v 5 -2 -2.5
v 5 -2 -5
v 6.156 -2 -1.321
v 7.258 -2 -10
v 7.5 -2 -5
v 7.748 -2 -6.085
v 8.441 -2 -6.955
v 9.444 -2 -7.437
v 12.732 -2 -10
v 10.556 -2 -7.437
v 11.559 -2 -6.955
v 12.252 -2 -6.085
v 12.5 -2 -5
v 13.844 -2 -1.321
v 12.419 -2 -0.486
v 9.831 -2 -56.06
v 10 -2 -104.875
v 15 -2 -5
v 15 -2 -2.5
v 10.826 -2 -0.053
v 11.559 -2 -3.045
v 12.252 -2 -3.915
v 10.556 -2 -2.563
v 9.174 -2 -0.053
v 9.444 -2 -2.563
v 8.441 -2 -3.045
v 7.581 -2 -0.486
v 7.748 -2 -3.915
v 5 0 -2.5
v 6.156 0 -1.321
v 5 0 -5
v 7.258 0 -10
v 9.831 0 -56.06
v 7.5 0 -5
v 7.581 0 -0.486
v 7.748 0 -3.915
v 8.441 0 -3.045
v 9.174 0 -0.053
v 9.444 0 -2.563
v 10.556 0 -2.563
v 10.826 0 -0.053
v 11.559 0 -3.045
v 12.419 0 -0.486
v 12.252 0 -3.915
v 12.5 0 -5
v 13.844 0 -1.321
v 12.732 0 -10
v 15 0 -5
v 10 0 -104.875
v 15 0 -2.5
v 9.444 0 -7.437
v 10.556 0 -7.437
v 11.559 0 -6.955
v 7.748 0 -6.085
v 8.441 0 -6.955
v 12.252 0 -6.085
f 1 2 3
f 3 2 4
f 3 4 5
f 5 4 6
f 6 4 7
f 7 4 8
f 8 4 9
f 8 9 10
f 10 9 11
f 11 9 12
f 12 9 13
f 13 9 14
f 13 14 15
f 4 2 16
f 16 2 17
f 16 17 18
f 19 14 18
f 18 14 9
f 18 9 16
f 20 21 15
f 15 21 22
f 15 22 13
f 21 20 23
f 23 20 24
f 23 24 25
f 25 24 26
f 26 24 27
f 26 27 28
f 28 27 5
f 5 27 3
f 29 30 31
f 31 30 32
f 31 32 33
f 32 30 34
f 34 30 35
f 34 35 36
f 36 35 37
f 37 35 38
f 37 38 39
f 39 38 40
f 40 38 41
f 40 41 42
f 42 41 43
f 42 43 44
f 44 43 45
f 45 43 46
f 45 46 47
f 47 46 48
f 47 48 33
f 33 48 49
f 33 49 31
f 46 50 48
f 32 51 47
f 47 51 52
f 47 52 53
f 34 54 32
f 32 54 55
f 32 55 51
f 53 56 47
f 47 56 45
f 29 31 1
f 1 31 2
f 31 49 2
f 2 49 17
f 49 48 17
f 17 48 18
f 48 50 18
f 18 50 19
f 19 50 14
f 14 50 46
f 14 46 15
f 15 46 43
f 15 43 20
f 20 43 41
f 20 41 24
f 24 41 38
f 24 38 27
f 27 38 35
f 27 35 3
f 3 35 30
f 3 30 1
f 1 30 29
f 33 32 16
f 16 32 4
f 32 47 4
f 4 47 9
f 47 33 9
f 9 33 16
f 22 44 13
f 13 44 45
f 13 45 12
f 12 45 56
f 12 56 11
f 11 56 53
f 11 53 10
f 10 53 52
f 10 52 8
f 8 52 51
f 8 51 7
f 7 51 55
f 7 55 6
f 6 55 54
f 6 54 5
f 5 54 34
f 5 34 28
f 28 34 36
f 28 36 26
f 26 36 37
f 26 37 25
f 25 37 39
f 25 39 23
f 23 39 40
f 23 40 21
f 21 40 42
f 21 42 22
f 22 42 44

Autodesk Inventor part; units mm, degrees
ref_plane "YZ Plane" through (0, 0, 0) normal (1, 0, 0) x (0, 1, 0)
ref_plane "XZ Plane" through (0, 0, 0) normal (0, 1, 0) x (-1, 0, 0)
ref_plane "XY Plane" through (0, 0, 0) normal (0, 0, 1) x (1, 0, 0)
sketch "Szkic3" plane through (0, 0, 0) normal (0, 1, 0) x (-1, 0, 0)
  line L0 (0, 0) -> (10, 0)
  line L1 (10, 0) -> (10, -50)
  line L2 (10, -50) -> (0, -50)
  line L3 (0, -50) -> (0, 0)
  circle A0 centre (5, -5) radius 2.5
  arc A1 (10, -2.5) -> (0, -2.5) centre (5, -6.25) ccw
  line L4 (8, -50) -> (2, -50)
  line L5 (2, -50) -> (2, -10)
  line L6 (2, -10) -> (8, -10)
  line L7 (8, -10) -> (8, -50)
  line L8 (2, -10) -> (8, -16)
  line L9 (2, -10) -> (10.4853, -10) construction
  line L10 (8, -16) -> (8, -18)
  line L11 (8, -18) -> (2, -12)
  line L12 (2, -10) -> (2, -12)
  line L13 (8, -18) -> (8, -22)
  line L14 (2, -16) -> (8, -22)
  line L15 (8, -24) -> (2, -18)
  line L16 (8, -16) -> (8, -14)
  line L17 (8, -24) -> (8, -26)
  line L18 (2, -20) -> (8, -26)
  line L19 (8, -28) -> (2, -22)
  line L20 (8, -28) -> (8, -32)
  line L21 (2, -26) -> (8, -32)
  line L22 (8, -34) -> (2, -28)
  line L23 (8, -34) -> (8, -36)
  line L24 (2, -26) -> (8, -32)
  line L25 (8, -34) -> (2, -28)
  line L26 (8, -34) -> (8, -38)
  line L27 (2, -32) -> (8, -38)
  line L28 (8, -40) -> (2, -34)
  line L29 (8, -40) -> (8, -42)
  line L30 (2, -32) -> (8, -38)
  line L31 (8, -40) -> (2, -34)
  line L32 (8, -40) -> (8, -44)
  line L33 (2, -38) -> (8, -44)
  line L34 (8, -46) -> (2, -40)
  line L35 (8, -46) -> (8, -48)
  line L36 (2, -38) -> (8, -44)
  line L37 (8, -46) -> (2, -40)
  line L38 (8, -46) -> (8, -50)
  line L39 (8, -46) -> (8, -48)
  line L40 (8, -48) -> (2, -42)
  line L41 (2, -42) -> (2, -44)
  line L42 (2, -44) -> (8, -50)
  line L43 (7, -49) -> (2, -49)
  circle A2 centre (5, -5) radius 3.25
  dimension "d9" = 10
  dimension "d10" = 50
  dimension "d11" = 5
  dimension "d12" = 6
  dimension "d13" = 40
  dimension "d14" = 45
  dimension "d15" = 2
  dimension "d16" = 4
  dimension "d17" = 2
  dimension "d18" = 2
  dimension "d19" = 2
  dimension "d20" = 2
  dimension "d21" = 4
  dimension "d22" = 2
  dimension "d23" = 2
  dimension "d24" = 2
  dimension "d25" = 4
  dimension "d26" = 2
  dimension "d27" = 2
  dimension "d28" = 2
  dimension "d29" = 4
  dimension "d30" = 2
  dimension "d32" = 2
  dimension "d36" = 2
  dimension "d37" = 2
  dimension "d42" = 6.5
extrude "Wyciągnięcie proste2" add sketch "Szkic3" against normal blind 2 contours A1 L1 L2 L7 L6 L5 L3 | L5 L43 L42 L2 | L42 L5 L40 L7 | L34 L5 L33 L7 | L28 L5 L27 L7 | L5 L21 L7 L22 | L5 L18 L7 L19 | L5 L14 L7 L15 | L5 L8 L7 L11 | A2
ref_plane "Płaszczyzna konstrukcyjna1" through (0, 0, -50) normal (0, 0, -1) x (-1, 0, 0)
mirror "Odbij1" about plane through (0, 0, -50) normal (0, 0, -1) of "Wyciągnięcie proste2"
sketch "Szkic4" plane through (0, 0, 0) normal (0, 1, 0) x (1, 0, 0)
  line L0 (-7.5, 91.0504) -> (-2.5, 91.0504)
  line L1 (-2.5, 91.0504) -> (-2.5, 98.6571)
  line L2 (-2.5, 98.6571) -> (-7.5, 98.6571)
  line L3 (-7.5, 98.6571) -> (-7.5, 91.0504)
  point P0 (0, 0)
extrude "Wyciągnięcie proste3" cut sketch "Szkic4" against normal blind 2
sketch "Szkic5" plane through (0, 0, 0) normal (0, 1, 0) x (1, 0, 0)
  line L0 (-10, 2.5) -> (-10, 97.5) projected
  line L1 (-10, 97.5) -> (-10, 67.5)
  line L2 (-10, 67.5) -> (-13, 67.5)
  line L3 (-13, 67.5) -> (-13, 97.5)
  line L4 (-13, 97.5) -> (-10, 97.5)
  arc A0 (0, 97.5) -> (-10, 97.5) centre (-5, 93.75) ccw projected
  line L5 (-5, 100) -> (-5, 49.8742)
  line L6 (-5, 100) -> (45.1258, 100) construction
  line L7 (-13, 67.5) -> (-10, 62.3038)
  line L8 (-13, 67.5) -> (-7, 67.5) construction
  line L9 (-10, 62.3038) -> (-10, 67.5)
  line L10 (0, 2.5) -> (0, 97.5)
  line L11 (0, 67.5) -> (3, 67.5)
  line L12 (3, 67.5) -> (3, 97.5)
  line L13 (3, 97.5) -> (0, 97.5)
  line L14 (3, 67.5) -> (0, 62.3038)
  arc A1 (3, 97.5) -> (-13, 97.5) centre (-5, 94.4495) ccw
  point P0 (0, 0)
  dimension "d43" = 30
  dimension "d44" = 3
  dimension "d45" = 90
  dimension "d46" = 60
extrude "Wyciągnięcie proste4" add sketch "Szkic5" against normal blind 2
sketch "Szkic6" plane through (0, 0, 0) normal (0, 1, 0) x (1, 0, 0)
  line L0 (-10, 62.3038) -> (-10, 2.5) projected
  line L1 (-10, 62.3038) -> (-10, 97.356)
  line L2 (-10, 97.356) -> (0, 97.356)
  line L3 (0, 97.356) -> (0, 62.3038)
  line L4 (0, 62.3038) -> (-10, 62.3038)
  point P0 (0, 0)
extrude "Wyciągnięcie proste5" cut sketch "Szkic6" against normal blind 2
sketch "Szkic7" plane through (0, 0, 0) normal (0, 1, 0) x (1, 0, 0)
  line L0 (-10, 62.3038) -> (-8, 62.3038) projected
  line L1 (-10, 62.3038) -> (-10, 67.4287)
  line L2 (-10, 62.3038) -> (-10, 97.356) projected
  line L3 (-10, 67.4287) -> (0, 67.4287)
  line L4 (0, 62.3038) -> (0, 97.356) projected
  line L5 (0, 62.3038) -> (0, 67.4287)
  line L6 (0, 62.3038) -> (-2, 62.3038) projected
  line L7 (-10, 2.5) -> (-10, 62.3038) projected
  line L8 (0, 62.3038) -> (-10, 62.3038)
  line L9 (-10, 62.3038) -> (-10, 61.2351)
  line L10 (-10, 61.2351) -> (0, 61.2351)
  line L11 (0, 61.2351) -> (0, 62.3038)
  line L12 (-10, 61.2351) -> (0, 61.2351)
  line L13 (0, 2.5) -> (0, 62.3038) projected
  line L14 (0, 61.2351) -> (0, 67.4287)
  line L15 (0, 67.4287) -> (-10, 67.4287)
  line L16 (-10, 61.2351) -> (-10, 67.4287)
  point P0 (0, 0)
extrude "Wyciągnięcie proste6" add sketch "Szkic7" against normal blind 2
sketch "Szkic8" plane through (0, 0, 0) normal (0, 1, 0) x (1, 0, 0)
  line L0 (-7.5, 97.356) -> (-10, 97.356) projected
  line L1 (-10, 97.356) -> (-11, 97.356)
  line L2 (-11, 97.356) -> (-11, 67.4287)
  line L3 (-11, 67.4287) -> (-10, 67.4287)
  line L4 (-10, 67.4287) -> (-10, 97.356)
  line L5 (0, 97.356) -> (1, 97.356)
  line L6 (1, 97.356) -> (1, 67.4287)
  line L7 (1, 67.4287) -> (0, 67.4287)
  line L8 (0, 67.4287) -> (0, 97.356)
  line L9 (-11, 67.4287) -> (1, 67.4287)
  line L10 (1, 67.4287) -> (1, 72.7222)
  line L11 (1, 72.7222) -> (-11, 72.7222)
  line L12 (-11, 72.7222) -> (-11, 67.4287)
  point P0 (0, 0)
  point P1 (0, 72.7222)
  point P2 (-10, 72.7222)
  dimension "d53" = 1
  dimension "d54" = 1
extrude "Wyciągnięcie proste7" cut sketch "Szkic8" against normal blind 2 contours L4 L11 L2 L1 | L8 L5 L6 L11
sketch "Szkic9" plane through (0, 0, 0) normal (0, 1, 0) x (1, 0, 0)
  line L0 (-10, 72.7222) -> (0, 72.7222)
  line L1 (0, 72.7222) -> (0, 67.3617)
  line L2 (0, 67.3617) -> (-10, 67.3617)
  line L3 (-10, 67.3617) -> (-10, 72.7222)
  point P0 (0, 0)
extrude "Wyciągnięcie proste8" add sketch "Szkic9" against normal blind 2
sketch "Szkic10" plane through (0, 0, 0) normal (0, 1, 0) x (1, 0, 0)
  point P0 (0, 0)
split "Podział1" plane through (0, 0, -50) removes the side toward (0, 0, -1)
sketch "Szkic11" plane through (0, 0, 0) normal (0, 1, 0) x (1, 0, 0)
  line L0 (-10, 2.5) -> (-10, 50) projected
  line L1 (-10, 50) -> (0, 50)
  line L2 (0, 50) -> (0, 100)
  line L3 (0, 100) -> (-10, 100)
  line L4 (-10, 100) -> (-10, 50)
  line L5 (-10, 100) -> (0, 100)
  line L6 (0, 100) -> (0, 124.634)
  line L7 (0, 124.634) -> (-10, 124.634)
  line L8 (-10, 124.634) -> (-10, 100)
  line L9 (-10, 124.634) -> (-11, 124.634)
  line L10 (-11, 124.634) -> (-11, 100)
  line L11 (-11, 100) -> (-10, 100)
  line L12 (-10, 100) -> (-10, 124.634)
  line L13 (0, 124.634) -> (1, 124.634)
  line L14 (1, 124.634) -> (1, 100)
  line L15 (1, 100) -> (0, 100)
  line L16 (0, 100) -> (0, 124.634)
  line L17 (-11, 100) -> (-9, 100) construction
  line L18 (1, 100) -> (3, 100) construction
  line L19 (-11, 124.634) -> (1, 124.634)
  line L20 (1, 124.634) -> (1, 126.634)
  line L21 (1, 126.634) -> (-11, 126.634)
  line L22 (-11, 126.634) -> (-11, 124.634)
  line L23 (-11, 100) -> (-12, 100)
  line L24 (-12, 100) -> (-12, 126.634)
  line L25 (-12, 126.634) -> (-11, 126.634)
  line L26 (-11, 126.634) -> (-11, 100)
  line L27 (1, 126.634) -> (2, 126.634)
  line L28 (2, 126.634) -> (2, 100)
  line L29 (2, 100) -> (1, 100)
  line L30 (1, 100) -> (1, 126.634)
  line L31 (-12, 100) -> (-10, 96.5359)
  line L32 (-12, 100) -> (-8, 100) construction
  line L33 (2, 100) -> (0, 96.5359)
  line L34 (2, 100) -> (6, 100) construction
  line L35 (-10, 124.634) -> (-10.5, 124.634)
  line L36 (-10.5, 124.634) -> (-10.5, 100)
  line L37 (0.5, 100) -> (0.5, 124.634)
  line L38 (0.75, 100) -> (0.75, 124.634)
  line L39 (-11, 100) -> (-10.75, 100)
  line L40 (-10.75, 100) -> (-10.75, 124.634)
  point P0 (0, 0)
  dimension "d59" = 10
  dimension "d60" = 50
  dimension "d61" = 10
  dimension "d62" = 24.634
  dimension "d63" = 1
  dimension "d64" = 1
  dimension "d67" = 2
  dimension "d68" = 1
  dimension "d69" = 1
  dimension "d70" = 60
  dimension "d71" = 120
  dimension "d90" = 0.5
  dimension "d107" = 0.25
extrude "Wyciągnięcie proste9" add sketch "Szkic11" against normal blind 2 contours L4 L3 L2 L1 | L31 L23 L11 L4 | L2 L15 L29 L33 | L24 L25 L22 L10 L23 | L29 L14 L20 L27 L28 | L9 L22 L21 L20 L13 L7
sketch "Szkic12" plane through (0, 0, 0) normal (0, 1, 0) x (1, 0, 0)
  line L0 (-8, 51.0298) -> (-2, 51.0298)
  line L1 (-2, 51.0298) -> (-2, 96.6875)
  line L2 (-2, 96.6875) -> (-8, 96.6875)
  line L3 (-8, 96.6875) -> (-8, 51.0298)
  line L4 (-8, 51.0298) -> (-2, 54.4939)
  line L5 (-8, 51.0298) -> (-1.0718, 51.0298) construction
  line L6 (-2, 54.4939) -> (-2, 59.4939)
  line L7 (-2, 59.4939) -> (-8, 56.0298)
  line L8 (-8, 51.0298) -> (-8, 56.0298)
  line L9 (-8, 56.0298) -> (-8, 61.0298)
  line L10 (-8, 61.0298) -> (-2, 64.4939)
  line L11 (-2, 64.4939) -> (-2, 69.4939)
  line L12 (-2, 69.4939) -> (-8, 66.0298)
  line L13 (-8, 61.0298) -> (-8, 66.0298)
  line L14 (-8, 66.0298) -> (-2, 69.4939)
  line L15 (-2, 74.4939) -> (-8, 71.0298)
  line L16 (-8, 76.0298) -> (-2, 79.4939)
  line L17 (-2, 84.4939) -> (-8, 81.0298)
  line L18 (-8, 71.0298) -> (-2, 74.4939)
  line L19 (-2, 79.4939) -> (-8, 76.0298)
  line L20 (-8, 81.0298) -> (-2, 84.4939)
  line L21 (-2, 89.4939) -> (-8, 86.0298)
  line L22 (-8, 76.0298) -> (-2, 79.4939)
  line L23 (-2, 84.4939) -> (-8, 81.0298)
  line L24 (-8, 86.0298) -> (-2, 89.4939)
  line L25 (-2, 94.4939) -> (-8, 91.0298)
  point P0 (0, 0)
  dimension "d74" = 30
  dimension "d75" = 5
  dimension "d76" = 5
  dimension "d77" = 5
  dimension "d78" = 5
  dimension "d79" = 5
  dimension "d80" = 5
  dimension "d81" = 5
  dimension "d82" = 5
  dimension "d83" = 5
  dimension "d84" = 5
  dimension "d85" = 5
  dimension "d86" = 5
extrude "Wyciągnięcie proste10" cut sketch "Szkic12" against normal blind 2 contours L3 L7 L1 L4 | L3 L12 L1 L10 | L3 L16 L1 L15 | L3 L21 L1 L17 | L3 L2 L1 L25
sketch "Szkic14" plane through (0, 0, 0) normal (0, 1, 0) x (1, 0, 0)
  arc A0 (5, 2.5) -> (15, 2.5) centre (10, 6.2465) ccw
  circle A1 centre (10, 5) radius 2.5
  line L0 (5, 2.5) -> (5, 5)
  line L1 (15, 2.5) -> (15, 5)
  line L2 (5, 5) -> (10, 104.8749)
  line L3 (10, 104.8749) -> (15, 5)
  line L4 (5.1827, 8.65) -> (14.8173, 8.65)
  line L5 (6.9979, 8.65) -> (12.6647, 8.65) construction
  line L6 (5.1827, 8.65) -> (7.1827, 8.65)
  line L7 (14.8173, 8.65) -> (12.8173, 8.65)
  line L8 (12.8173, 8.65) -> (9.8313, 56.0603)
  line L9 (9.8313, 56.0603) -> (7.1827, 8.65)
  line L10 (7.2581, 10) -> (12.7322, 10)
  point P0 (0, 0)
  dimension "d91" = 10
  dimension "d92" = 5
  dimension "d93" = 100
  dimension "d103" = 2
  dimension "d104" = 2
extrude "Wyciągnięcie proste11" add sketch "Szkic14" against normal blind 2 contours L0 L2 L4 L3 L1 A0 | L2 L3 L4 L8 L9 | L9 L10 L8 L4
sketch "Szkic15" plane through (0, 0, 0) normal (0, 1, 0) x (1, 0, 0)
  line L0 (-8, 91.0298) -> (-8, 96.6875) projected
  line L1 (-2, 10) -> (-8, 10) projected
  line L2 (-8, 96.6875) -> (-2, 96.6875)
  line L3 (-2, 96.6875) -> (-2, 10)
  line L4 (-2, 10) -> (-8, 10)
  line L5 (-8, 10) -> (-8, 96.6875)
  point P0 (0, 0)
extrude "Wyciągnięcie proste12" cut sketch "Szkic15" against normal blind 2
sketch "Szkic17" plane through (0, 0, 0) normal (0, 1, 0) x (1, 0, 0)
  line L0 (-2, 96.6875) -> (-8, 96.6875) projected
  line L1 (-8, 96.6875) -> (-8.5, 96.6875)
  line L2 (-8.5, 96.6875) -> (-7.5, 96.6875)
  line L3 (-2, 96.6875) -> (-2.5, 96.6875)
  line L4 (-2.5, 96.6875) -> (-1.5, 96.6875)
  line L5 (-8, 9.9943) -> (-8.5, 9.9943)
  line L6 (-8.5, 9.9943) -> (-7.5, 9.9943)
  line L7 (-2, 10) -> (-8, 10) projected
  line L8 (-2, 10) -> (-1.5, 10)
  line L9 (-1.5, 10) -> (-2.5, 10)
  line L10 (-1.5, 10) -> (-7.5, 96.6875)
  line L11 (-8.5, 96.6875) -> (-2.5, 10)
  line L12 (-7.5, 9.9943) -> (-1.5, 96.6875)
  line L13 (-2.5, 96.6875) -> (-8.5, 9.9943)
  point P0 (0, 0)
  point P1 (-4.9999, 60.5665)
  point P2 (-5.4999, 53.3423)
  point P3 (-4.9999, 46.1181)
  point P4 (-4.4999, 53.3423)
  dimension "d121" = 0.5
  dimension "d122" = 1
  dimension "d123" = 0.5
  dimension "d124" = 1
  dimension "d125" = 0.5
  dimension "d126" = 1
  dimension "d127" = 0.5
  dimension "d128" = 1
extrude "Wyciągnięcie proste14" add sketch "Szkic17" against normal blind 2 contours L4 L12 L10 L13 L0 | L10 L13 L11 L1 L0 | L10 L12 L11 L13 | L10 L8 L7 L11 L12 | L11 L12 L6 L5 L13
ref_plane "Płaszczyzna konstrukcyjna5" through (3.75, 0, -2.5) normal (-1, 0, 0) x (0, -1, 0)
ref_plane "Płaszczyzna konstrukcyjna4" through (0, 0, -2.5) normal (-1, 0, 0) x (0, -1, 0)
split "Podział2" plane through (3.75, 0, -2.5) removes the side toward (-1, 0, 0)
split "Podział3" plane through (3.75, 0, -2.5) removes the side toward (-1, 0, 0)
sketch "Szkic18" plane through (3.75, 0, -2.5) normal (-1, 0, 0) x (0, -1, 0)
  line L0 (-7.6237, -125.0024) -> (12.1257, -125.0024)
  line L1 (12.1257, -125.0024) -> (12.1257, 3.8459)
  line L2 (12.1257, 3.8459) -> (-7.6237, 3.8459)
  line L3 (-7.6237, 3.8459) -> (-7.6237, -125.0024)
  point P0 (0, 2.5)
extrude "Wyciągnięcie proste15" cut sketch "Szkic18" along normal blind 70
properties part number "arm_v2(arm-point)"
